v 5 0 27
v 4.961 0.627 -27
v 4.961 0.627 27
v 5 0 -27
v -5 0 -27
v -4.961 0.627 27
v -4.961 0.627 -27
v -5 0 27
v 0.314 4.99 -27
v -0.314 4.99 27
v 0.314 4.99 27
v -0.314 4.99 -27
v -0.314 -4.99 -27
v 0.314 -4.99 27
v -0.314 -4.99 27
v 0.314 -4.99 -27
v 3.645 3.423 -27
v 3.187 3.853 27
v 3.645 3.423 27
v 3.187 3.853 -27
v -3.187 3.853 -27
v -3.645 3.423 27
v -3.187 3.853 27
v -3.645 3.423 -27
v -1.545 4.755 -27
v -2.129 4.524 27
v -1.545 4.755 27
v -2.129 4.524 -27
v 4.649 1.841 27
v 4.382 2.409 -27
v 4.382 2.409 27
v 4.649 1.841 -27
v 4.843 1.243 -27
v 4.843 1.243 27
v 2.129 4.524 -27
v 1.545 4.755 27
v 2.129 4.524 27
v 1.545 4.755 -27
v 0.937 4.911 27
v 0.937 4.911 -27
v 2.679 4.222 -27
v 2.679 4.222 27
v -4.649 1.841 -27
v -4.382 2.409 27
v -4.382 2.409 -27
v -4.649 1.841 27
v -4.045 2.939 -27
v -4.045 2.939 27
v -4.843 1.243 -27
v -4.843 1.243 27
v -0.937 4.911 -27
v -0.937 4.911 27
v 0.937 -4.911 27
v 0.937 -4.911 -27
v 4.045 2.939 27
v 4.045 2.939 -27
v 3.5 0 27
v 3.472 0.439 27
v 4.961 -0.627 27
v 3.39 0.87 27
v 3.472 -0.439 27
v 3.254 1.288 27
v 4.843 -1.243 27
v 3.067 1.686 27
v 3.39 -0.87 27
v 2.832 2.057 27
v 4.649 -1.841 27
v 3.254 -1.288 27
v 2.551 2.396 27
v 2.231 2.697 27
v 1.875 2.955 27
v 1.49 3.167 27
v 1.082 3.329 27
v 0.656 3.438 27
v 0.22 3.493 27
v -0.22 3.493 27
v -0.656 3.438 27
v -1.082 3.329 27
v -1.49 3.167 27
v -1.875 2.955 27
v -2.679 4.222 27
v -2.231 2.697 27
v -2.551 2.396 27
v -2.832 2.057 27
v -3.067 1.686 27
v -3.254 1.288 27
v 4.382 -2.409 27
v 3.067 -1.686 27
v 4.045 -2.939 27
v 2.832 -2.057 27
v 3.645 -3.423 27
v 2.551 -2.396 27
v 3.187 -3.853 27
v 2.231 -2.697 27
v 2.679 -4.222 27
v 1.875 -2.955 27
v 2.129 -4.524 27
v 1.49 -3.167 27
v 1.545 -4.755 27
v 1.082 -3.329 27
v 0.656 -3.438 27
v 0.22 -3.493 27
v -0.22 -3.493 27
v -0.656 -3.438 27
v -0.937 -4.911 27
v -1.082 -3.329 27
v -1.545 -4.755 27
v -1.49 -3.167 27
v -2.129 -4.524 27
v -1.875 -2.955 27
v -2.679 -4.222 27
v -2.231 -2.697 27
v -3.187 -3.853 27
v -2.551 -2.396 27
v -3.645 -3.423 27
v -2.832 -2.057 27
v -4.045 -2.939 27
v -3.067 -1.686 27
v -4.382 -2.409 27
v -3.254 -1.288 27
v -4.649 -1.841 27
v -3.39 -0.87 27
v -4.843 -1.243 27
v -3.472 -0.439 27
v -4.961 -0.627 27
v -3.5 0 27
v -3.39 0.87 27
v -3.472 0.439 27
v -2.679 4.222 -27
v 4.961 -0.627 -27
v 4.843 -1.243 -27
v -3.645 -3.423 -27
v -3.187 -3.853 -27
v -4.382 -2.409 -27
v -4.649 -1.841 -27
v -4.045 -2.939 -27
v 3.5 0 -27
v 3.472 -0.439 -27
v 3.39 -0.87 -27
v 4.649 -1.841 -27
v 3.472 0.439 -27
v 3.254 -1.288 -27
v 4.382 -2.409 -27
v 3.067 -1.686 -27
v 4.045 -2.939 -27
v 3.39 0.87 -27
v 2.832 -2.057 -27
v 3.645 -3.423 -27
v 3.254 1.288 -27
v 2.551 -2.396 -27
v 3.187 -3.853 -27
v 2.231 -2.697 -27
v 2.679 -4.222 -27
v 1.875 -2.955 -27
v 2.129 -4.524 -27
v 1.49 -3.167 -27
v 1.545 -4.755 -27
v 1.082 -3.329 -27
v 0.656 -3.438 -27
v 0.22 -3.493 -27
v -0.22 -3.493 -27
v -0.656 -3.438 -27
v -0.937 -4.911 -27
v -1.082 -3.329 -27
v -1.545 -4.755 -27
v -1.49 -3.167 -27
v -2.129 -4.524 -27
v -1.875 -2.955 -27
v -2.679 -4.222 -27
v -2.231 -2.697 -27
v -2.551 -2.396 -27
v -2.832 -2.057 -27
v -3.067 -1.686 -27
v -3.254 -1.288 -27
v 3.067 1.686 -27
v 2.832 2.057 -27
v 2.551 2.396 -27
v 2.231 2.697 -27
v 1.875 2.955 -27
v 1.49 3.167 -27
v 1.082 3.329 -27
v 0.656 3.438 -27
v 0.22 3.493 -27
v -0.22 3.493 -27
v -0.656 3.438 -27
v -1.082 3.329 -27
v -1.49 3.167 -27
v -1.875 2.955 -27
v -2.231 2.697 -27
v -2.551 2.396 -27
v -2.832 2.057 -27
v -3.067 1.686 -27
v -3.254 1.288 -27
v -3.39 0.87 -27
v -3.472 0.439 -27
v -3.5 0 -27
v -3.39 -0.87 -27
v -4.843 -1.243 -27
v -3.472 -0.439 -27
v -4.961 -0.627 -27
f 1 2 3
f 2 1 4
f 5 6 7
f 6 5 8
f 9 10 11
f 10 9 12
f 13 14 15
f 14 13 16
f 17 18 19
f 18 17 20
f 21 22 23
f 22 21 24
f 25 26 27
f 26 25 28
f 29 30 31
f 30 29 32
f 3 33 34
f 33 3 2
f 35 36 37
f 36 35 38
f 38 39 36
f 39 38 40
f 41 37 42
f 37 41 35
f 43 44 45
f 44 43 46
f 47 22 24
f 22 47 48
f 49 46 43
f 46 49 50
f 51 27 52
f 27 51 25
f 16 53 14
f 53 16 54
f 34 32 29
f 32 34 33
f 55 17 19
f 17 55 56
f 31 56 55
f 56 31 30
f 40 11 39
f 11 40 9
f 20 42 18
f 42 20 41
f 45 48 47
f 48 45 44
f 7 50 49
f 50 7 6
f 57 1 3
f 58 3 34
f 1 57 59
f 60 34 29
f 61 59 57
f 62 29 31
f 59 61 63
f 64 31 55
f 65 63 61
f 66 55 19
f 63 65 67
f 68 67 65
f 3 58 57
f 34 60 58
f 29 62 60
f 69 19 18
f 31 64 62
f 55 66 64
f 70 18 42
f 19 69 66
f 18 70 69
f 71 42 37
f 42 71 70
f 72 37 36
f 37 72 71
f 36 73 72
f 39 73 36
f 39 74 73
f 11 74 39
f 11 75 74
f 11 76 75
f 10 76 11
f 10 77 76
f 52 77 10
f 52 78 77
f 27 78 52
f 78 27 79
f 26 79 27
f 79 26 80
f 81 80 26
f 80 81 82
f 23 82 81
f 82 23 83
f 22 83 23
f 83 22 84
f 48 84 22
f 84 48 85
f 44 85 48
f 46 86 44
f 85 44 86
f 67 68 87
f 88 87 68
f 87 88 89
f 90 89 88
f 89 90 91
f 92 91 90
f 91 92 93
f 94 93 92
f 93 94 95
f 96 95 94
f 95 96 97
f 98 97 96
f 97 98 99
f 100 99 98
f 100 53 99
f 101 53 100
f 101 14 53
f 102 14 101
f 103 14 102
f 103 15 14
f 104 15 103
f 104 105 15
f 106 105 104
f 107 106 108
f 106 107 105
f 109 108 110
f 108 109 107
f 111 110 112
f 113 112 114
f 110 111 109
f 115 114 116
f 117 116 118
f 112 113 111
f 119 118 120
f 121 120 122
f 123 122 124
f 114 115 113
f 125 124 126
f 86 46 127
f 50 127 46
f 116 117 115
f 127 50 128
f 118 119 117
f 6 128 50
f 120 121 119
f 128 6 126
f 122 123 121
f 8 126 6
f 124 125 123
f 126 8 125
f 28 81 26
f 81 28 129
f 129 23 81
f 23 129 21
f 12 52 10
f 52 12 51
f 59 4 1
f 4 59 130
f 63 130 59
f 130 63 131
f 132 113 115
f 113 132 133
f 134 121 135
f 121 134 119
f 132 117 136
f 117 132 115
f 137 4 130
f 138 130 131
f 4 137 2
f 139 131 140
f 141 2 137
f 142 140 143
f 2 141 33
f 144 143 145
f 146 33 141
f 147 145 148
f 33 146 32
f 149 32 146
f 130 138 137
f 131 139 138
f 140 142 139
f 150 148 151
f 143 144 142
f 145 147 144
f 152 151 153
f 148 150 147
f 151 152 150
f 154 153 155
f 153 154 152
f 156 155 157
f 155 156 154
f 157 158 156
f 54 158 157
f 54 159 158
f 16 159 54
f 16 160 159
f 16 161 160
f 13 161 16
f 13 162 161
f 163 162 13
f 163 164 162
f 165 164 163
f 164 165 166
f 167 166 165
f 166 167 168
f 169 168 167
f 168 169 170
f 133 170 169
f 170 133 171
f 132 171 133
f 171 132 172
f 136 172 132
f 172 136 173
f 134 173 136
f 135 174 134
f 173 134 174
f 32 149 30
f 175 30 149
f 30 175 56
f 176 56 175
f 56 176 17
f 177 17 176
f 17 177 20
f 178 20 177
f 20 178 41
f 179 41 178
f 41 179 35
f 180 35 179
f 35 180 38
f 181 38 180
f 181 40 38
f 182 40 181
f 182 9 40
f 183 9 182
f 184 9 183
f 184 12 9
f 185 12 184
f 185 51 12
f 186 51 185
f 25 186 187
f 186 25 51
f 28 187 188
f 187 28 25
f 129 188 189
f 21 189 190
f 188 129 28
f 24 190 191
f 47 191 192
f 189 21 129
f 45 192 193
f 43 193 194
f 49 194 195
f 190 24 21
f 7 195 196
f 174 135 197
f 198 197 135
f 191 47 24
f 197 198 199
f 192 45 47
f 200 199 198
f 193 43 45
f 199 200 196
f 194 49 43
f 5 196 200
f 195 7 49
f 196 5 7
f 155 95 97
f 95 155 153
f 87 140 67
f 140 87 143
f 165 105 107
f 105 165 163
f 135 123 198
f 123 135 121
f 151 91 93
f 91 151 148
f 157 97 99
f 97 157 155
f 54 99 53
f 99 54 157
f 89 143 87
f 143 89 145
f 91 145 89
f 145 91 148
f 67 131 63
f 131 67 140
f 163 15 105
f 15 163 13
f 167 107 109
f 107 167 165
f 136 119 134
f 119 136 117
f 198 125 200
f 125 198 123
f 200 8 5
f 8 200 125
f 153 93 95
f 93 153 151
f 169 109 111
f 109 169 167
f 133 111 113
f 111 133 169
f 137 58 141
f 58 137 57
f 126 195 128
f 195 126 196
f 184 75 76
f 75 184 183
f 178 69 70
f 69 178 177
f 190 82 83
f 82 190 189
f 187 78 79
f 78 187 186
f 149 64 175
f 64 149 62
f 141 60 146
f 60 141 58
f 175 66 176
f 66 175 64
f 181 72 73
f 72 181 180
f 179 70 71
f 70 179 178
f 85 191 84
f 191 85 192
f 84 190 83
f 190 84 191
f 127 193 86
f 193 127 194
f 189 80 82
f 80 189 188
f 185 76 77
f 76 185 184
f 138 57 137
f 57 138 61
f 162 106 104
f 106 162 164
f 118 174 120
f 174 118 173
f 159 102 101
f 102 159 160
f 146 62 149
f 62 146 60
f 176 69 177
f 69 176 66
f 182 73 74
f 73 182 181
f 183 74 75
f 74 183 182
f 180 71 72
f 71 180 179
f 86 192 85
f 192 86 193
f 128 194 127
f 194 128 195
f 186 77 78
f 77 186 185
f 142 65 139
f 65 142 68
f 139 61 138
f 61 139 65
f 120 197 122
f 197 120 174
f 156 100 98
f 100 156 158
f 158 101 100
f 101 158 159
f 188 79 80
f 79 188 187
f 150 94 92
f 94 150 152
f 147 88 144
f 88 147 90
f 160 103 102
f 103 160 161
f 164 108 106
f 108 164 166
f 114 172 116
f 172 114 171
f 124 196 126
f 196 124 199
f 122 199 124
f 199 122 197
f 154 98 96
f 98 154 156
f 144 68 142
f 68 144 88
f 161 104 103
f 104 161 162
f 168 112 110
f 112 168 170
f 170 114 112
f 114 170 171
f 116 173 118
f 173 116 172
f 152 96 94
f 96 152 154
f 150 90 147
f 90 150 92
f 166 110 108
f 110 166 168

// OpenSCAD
$fn = 50;


difference() {
	union() {
		translate(v = [0, 0, -27.0000000000]) {
			cylinder(h = 54, r = 5.0000000000);
		}
	}
	union() {
		translate(v = [0, 0, -100.0000000000]) {
			cylinder(h = 200, r = 3.5000000000);
		}
	}
}
